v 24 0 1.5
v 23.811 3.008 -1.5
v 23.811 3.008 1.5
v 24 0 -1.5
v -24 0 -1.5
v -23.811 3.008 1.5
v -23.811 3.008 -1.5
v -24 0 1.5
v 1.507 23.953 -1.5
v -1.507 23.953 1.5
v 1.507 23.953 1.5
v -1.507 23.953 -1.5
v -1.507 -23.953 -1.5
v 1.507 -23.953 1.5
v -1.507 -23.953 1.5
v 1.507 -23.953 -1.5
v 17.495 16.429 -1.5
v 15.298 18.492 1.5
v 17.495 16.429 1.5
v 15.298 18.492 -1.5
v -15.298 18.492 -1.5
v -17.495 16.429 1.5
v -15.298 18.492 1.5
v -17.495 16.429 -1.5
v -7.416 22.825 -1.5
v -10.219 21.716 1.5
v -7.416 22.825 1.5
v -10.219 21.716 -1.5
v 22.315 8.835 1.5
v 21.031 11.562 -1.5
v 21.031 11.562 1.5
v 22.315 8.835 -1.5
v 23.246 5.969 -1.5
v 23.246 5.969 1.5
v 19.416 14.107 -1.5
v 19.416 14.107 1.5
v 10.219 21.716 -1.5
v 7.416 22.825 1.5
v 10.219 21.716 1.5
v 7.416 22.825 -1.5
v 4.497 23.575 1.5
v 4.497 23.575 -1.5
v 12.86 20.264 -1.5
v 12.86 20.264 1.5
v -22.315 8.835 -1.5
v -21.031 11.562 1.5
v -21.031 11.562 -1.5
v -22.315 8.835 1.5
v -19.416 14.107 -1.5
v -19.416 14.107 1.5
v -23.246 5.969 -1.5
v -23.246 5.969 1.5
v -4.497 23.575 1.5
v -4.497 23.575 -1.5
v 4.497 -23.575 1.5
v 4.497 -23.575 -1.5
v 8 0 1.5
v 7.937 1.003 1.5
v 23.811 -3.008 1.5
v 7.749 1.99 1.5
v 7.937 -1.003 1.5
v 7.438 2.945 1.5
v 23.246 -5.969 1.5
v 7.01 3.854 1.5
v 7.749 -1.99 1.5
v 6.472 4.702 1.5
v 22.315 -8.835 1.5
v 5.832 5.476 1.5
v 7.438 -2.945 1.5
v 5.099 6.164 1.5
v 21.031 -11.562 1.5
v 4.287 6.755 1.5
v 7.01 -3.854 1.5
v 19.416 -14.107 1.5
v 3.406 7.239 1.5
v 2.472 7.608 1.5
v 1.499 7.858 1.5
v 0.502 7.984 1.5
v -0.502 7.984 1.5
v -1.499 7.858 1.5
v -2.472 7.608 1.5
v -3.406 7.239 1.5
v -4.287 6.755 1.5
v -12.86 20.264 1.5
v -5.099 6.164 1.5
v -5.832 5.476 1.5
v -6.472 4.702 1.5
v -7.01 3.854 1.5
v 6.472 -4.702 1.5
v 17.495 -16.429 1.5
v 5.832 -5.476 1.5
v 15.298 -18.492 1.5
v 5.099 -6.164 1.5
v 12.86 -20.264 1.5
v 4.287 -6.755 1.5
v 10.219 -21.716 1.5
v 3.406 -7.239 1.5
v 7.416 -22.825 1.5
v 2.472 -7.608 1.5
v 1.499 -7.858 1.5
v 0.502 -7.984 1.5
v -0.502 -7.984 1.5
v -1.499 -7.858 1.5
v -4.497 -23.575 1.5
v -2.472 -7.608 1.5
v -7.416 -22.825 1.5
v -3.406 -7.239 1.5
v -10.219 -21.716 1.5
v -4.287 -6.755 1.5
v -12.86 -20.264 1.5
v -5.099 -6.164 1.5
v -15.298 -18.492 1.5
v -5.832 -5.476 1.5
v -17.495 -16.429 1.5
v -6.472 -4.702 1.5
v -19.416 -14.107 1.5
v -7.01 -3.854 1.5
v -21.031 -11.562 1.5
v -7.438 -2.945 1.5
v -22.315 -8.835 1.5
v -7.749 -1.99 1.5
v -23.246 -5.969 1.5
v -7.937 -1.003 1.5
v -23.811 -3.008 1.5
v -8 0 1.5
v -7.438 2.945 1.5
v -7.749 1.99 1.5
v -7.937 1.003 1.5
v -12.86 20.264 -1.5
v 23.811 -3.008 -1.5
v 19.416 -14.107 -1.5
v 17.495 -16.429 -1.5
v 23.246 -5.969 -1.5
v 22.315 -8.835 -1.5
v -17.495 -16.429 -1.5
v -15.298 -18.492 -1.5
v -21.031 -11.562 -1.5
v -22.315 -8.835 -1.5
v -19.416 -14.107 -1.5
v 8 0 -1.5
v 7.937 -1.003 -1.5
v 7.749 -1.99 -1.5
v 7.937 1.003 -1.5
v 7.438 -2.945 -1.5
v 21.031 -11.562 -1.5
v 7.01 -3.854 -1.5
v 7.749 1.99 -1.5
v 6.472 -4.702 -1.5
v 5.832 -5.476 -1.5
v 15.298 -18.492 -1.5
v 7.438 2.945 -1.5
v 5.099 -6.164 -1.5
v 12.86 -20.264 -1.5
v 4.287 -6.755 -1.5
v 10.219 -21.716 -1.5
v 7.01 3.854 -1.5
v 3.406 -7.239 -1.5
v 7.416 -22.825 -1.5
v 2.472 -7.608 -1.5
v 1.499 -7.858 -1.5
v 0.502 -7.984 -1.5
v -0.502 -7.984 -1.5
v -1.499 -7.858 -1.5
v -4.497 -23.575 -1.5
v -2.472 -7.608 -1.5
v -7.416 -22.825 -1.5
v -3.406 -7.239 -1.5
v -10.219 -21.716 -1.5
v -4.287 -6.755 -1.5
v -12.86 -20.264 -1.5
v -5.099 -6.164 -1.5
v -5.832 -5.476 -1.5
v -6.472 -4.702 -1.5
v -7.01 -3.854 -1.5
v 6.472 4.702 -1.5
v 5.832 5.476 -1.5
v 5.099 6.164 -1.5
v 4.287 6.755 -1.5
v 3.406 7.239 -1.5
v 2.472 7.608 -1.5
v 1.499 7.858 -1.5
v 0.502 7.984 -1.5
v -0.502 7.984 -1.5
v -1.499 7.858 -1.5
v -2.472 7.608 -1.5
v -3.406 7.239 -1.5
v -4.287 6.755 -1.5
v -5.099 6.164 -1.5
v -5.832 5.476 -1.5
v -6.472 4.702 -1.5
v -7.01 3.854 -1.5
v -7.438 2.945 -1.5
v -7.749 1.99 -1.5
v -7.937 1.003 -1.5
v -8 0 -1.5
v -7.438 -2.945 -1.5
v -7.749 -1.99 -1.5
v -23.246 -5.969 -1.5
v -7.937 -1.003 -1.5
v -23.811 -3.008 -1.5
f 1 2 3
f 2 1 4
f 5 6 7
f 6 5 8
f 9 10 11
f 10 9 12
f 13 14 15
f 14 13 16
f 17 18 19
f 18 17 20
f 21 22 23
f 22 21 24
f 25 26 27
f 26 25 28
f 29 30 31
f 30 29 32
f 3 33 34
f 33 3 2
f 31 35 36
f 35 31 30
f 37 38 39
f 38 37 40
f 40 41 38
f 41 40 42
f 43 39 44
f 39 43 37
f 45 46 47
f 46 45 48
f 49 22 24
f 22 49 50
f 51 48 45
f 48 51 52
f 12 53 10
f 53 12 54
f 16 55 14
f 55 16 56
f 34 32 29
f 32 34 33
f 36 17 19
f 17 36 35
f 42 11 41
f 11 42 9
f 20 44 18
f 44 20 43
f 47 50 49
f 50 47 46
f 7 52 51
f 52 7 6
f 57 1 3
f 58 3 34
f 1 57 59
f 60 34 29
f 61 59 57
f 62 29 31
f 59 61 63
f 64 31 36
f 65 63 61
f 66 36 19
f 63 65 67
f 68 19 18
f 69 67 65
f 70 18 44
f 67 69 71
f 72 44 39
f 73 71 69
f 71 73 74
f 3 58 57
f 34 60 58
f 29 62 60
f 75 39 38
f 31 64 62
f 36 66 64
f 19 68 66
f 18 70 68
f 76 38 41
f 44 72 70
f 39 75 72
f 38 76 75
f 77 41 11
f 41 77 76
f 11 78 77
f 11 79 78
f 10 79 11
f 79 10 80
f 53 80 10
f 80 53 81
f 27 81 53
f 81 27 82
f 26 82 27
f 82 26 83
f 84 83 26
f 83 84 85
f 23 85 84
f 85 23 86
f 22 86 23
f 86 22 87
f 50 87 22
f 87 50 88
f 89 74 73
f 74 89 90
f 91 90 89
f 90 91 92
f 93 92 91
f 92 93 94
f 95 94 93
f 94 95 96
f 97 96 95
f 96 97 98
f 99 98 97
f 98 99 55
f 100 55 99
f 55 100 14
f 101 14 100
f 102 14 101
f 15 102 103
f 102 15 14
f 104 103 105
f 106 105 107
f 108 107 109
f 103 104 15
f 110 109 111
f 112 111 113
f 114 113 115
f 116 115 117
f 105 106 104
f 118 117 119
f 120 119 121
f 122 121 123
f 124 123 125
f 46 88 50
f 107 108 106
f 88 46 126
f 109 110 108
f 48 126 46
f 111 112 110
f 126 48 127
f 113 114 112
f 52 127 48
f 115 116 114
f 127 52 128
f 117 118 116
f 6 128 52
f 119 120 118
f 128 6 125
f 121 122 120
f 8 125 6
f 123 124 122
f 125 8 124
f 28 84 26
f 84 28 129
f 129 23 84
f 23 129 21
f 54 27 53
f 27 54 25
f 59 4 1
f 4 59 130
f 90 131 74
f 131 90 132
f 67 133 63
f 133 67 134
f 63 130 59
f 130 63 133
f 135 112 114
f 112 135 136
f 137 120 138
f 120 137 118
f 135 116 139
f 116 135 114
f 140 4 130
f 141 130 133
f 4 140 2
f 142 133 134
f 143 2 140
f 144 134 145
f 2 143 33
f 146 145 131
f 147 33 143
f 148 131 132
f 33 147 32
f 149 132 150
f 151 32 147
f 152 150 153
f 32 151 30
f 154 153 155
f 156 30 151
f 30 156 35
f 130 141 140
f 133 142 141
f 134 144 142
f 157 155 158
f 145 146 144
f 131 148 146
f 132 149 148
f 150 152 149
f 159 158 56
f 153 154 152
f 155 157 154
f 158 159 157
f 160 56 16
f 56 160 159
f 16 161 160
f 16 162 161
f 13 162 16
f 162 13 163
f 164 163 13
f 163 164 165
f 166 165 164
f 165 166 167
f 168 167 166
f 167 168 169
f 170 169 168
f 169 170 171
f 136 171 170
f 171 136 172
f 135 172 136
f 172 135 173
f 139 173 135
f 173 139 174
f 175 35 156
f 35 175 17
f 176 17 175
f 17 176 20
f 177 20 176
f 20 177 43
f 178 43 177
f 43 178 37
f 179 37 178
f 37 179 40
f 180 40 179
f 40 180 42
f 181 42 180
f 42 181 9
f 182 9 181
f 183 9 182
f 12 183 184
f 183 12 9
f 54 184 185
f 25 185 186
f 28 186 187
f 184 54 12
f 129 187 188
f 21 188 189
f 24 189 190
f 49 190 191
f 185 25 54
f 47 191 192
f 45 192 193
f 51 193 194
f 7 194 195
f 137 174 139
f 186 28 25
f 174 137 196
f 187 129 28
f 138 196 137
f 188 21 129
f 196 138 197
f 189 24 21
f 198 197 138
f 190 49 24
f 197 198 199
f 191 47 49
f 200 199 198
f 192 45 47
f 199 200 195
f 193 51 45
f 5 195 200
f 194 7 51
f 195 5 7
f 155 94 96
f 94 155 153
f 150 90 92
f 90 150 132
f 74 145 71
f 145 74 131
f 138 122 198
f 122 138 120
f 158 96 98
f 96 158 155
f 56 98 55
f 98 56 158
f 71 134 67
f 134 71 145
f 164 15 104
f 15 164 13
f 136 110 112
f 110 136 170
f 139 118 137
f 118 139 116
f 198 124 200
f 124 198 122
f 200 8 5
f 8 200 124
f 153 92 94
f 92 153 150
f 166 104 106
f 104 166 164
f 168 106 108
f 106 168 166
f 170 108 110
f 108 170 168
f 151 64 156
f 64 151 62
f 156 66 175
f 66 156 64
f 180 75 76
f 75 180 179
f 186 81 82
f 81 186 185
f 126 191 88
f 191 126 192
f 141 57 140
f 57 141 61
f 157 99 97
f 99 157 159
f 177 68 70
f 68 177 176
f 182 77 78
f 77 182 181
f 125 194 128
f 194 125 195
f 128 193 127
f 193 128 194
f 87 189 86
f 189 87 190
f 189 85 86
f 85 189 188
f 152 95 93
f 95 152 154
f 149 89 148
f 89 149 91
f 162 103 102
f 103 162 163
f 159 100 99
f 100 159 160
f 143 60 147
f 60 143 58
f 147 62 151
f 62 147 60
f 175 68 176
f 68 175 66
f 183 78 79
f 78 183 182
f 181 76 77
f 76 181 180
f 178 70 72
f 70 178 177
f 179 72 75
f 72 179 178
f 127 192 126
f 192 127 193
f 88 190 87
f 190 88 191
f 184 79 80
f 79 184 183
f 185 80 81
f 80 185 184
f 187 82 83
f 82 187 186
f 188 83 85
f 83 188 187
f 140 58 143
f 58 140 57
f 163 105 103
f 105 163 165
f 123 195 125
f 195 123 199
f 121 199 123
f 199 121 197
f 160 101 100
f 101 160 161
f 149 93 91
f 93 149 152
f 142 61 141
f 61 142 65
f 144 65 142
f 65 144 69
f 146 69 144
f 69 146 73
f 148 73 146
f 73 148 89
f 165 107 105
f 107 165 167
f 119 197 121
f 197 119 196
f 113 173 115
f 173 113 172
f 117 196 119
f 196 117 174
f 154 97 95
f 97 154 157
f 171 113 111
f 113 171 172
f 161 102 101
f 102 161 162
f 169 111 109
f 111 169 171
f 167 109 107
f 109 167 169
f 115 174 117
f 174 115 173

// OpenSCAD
$fn = 50;


difference() {
	union() {
		translate(v = [0, 0, -1.5000000000]) {
			cylinder(h = 3, r = 24.0000000000);
		}
	}
	union() {
		translate(v = [0, 0, -100.0000000000]) {
			cylinder(h = 200, r = 8);
		}
	}
}
